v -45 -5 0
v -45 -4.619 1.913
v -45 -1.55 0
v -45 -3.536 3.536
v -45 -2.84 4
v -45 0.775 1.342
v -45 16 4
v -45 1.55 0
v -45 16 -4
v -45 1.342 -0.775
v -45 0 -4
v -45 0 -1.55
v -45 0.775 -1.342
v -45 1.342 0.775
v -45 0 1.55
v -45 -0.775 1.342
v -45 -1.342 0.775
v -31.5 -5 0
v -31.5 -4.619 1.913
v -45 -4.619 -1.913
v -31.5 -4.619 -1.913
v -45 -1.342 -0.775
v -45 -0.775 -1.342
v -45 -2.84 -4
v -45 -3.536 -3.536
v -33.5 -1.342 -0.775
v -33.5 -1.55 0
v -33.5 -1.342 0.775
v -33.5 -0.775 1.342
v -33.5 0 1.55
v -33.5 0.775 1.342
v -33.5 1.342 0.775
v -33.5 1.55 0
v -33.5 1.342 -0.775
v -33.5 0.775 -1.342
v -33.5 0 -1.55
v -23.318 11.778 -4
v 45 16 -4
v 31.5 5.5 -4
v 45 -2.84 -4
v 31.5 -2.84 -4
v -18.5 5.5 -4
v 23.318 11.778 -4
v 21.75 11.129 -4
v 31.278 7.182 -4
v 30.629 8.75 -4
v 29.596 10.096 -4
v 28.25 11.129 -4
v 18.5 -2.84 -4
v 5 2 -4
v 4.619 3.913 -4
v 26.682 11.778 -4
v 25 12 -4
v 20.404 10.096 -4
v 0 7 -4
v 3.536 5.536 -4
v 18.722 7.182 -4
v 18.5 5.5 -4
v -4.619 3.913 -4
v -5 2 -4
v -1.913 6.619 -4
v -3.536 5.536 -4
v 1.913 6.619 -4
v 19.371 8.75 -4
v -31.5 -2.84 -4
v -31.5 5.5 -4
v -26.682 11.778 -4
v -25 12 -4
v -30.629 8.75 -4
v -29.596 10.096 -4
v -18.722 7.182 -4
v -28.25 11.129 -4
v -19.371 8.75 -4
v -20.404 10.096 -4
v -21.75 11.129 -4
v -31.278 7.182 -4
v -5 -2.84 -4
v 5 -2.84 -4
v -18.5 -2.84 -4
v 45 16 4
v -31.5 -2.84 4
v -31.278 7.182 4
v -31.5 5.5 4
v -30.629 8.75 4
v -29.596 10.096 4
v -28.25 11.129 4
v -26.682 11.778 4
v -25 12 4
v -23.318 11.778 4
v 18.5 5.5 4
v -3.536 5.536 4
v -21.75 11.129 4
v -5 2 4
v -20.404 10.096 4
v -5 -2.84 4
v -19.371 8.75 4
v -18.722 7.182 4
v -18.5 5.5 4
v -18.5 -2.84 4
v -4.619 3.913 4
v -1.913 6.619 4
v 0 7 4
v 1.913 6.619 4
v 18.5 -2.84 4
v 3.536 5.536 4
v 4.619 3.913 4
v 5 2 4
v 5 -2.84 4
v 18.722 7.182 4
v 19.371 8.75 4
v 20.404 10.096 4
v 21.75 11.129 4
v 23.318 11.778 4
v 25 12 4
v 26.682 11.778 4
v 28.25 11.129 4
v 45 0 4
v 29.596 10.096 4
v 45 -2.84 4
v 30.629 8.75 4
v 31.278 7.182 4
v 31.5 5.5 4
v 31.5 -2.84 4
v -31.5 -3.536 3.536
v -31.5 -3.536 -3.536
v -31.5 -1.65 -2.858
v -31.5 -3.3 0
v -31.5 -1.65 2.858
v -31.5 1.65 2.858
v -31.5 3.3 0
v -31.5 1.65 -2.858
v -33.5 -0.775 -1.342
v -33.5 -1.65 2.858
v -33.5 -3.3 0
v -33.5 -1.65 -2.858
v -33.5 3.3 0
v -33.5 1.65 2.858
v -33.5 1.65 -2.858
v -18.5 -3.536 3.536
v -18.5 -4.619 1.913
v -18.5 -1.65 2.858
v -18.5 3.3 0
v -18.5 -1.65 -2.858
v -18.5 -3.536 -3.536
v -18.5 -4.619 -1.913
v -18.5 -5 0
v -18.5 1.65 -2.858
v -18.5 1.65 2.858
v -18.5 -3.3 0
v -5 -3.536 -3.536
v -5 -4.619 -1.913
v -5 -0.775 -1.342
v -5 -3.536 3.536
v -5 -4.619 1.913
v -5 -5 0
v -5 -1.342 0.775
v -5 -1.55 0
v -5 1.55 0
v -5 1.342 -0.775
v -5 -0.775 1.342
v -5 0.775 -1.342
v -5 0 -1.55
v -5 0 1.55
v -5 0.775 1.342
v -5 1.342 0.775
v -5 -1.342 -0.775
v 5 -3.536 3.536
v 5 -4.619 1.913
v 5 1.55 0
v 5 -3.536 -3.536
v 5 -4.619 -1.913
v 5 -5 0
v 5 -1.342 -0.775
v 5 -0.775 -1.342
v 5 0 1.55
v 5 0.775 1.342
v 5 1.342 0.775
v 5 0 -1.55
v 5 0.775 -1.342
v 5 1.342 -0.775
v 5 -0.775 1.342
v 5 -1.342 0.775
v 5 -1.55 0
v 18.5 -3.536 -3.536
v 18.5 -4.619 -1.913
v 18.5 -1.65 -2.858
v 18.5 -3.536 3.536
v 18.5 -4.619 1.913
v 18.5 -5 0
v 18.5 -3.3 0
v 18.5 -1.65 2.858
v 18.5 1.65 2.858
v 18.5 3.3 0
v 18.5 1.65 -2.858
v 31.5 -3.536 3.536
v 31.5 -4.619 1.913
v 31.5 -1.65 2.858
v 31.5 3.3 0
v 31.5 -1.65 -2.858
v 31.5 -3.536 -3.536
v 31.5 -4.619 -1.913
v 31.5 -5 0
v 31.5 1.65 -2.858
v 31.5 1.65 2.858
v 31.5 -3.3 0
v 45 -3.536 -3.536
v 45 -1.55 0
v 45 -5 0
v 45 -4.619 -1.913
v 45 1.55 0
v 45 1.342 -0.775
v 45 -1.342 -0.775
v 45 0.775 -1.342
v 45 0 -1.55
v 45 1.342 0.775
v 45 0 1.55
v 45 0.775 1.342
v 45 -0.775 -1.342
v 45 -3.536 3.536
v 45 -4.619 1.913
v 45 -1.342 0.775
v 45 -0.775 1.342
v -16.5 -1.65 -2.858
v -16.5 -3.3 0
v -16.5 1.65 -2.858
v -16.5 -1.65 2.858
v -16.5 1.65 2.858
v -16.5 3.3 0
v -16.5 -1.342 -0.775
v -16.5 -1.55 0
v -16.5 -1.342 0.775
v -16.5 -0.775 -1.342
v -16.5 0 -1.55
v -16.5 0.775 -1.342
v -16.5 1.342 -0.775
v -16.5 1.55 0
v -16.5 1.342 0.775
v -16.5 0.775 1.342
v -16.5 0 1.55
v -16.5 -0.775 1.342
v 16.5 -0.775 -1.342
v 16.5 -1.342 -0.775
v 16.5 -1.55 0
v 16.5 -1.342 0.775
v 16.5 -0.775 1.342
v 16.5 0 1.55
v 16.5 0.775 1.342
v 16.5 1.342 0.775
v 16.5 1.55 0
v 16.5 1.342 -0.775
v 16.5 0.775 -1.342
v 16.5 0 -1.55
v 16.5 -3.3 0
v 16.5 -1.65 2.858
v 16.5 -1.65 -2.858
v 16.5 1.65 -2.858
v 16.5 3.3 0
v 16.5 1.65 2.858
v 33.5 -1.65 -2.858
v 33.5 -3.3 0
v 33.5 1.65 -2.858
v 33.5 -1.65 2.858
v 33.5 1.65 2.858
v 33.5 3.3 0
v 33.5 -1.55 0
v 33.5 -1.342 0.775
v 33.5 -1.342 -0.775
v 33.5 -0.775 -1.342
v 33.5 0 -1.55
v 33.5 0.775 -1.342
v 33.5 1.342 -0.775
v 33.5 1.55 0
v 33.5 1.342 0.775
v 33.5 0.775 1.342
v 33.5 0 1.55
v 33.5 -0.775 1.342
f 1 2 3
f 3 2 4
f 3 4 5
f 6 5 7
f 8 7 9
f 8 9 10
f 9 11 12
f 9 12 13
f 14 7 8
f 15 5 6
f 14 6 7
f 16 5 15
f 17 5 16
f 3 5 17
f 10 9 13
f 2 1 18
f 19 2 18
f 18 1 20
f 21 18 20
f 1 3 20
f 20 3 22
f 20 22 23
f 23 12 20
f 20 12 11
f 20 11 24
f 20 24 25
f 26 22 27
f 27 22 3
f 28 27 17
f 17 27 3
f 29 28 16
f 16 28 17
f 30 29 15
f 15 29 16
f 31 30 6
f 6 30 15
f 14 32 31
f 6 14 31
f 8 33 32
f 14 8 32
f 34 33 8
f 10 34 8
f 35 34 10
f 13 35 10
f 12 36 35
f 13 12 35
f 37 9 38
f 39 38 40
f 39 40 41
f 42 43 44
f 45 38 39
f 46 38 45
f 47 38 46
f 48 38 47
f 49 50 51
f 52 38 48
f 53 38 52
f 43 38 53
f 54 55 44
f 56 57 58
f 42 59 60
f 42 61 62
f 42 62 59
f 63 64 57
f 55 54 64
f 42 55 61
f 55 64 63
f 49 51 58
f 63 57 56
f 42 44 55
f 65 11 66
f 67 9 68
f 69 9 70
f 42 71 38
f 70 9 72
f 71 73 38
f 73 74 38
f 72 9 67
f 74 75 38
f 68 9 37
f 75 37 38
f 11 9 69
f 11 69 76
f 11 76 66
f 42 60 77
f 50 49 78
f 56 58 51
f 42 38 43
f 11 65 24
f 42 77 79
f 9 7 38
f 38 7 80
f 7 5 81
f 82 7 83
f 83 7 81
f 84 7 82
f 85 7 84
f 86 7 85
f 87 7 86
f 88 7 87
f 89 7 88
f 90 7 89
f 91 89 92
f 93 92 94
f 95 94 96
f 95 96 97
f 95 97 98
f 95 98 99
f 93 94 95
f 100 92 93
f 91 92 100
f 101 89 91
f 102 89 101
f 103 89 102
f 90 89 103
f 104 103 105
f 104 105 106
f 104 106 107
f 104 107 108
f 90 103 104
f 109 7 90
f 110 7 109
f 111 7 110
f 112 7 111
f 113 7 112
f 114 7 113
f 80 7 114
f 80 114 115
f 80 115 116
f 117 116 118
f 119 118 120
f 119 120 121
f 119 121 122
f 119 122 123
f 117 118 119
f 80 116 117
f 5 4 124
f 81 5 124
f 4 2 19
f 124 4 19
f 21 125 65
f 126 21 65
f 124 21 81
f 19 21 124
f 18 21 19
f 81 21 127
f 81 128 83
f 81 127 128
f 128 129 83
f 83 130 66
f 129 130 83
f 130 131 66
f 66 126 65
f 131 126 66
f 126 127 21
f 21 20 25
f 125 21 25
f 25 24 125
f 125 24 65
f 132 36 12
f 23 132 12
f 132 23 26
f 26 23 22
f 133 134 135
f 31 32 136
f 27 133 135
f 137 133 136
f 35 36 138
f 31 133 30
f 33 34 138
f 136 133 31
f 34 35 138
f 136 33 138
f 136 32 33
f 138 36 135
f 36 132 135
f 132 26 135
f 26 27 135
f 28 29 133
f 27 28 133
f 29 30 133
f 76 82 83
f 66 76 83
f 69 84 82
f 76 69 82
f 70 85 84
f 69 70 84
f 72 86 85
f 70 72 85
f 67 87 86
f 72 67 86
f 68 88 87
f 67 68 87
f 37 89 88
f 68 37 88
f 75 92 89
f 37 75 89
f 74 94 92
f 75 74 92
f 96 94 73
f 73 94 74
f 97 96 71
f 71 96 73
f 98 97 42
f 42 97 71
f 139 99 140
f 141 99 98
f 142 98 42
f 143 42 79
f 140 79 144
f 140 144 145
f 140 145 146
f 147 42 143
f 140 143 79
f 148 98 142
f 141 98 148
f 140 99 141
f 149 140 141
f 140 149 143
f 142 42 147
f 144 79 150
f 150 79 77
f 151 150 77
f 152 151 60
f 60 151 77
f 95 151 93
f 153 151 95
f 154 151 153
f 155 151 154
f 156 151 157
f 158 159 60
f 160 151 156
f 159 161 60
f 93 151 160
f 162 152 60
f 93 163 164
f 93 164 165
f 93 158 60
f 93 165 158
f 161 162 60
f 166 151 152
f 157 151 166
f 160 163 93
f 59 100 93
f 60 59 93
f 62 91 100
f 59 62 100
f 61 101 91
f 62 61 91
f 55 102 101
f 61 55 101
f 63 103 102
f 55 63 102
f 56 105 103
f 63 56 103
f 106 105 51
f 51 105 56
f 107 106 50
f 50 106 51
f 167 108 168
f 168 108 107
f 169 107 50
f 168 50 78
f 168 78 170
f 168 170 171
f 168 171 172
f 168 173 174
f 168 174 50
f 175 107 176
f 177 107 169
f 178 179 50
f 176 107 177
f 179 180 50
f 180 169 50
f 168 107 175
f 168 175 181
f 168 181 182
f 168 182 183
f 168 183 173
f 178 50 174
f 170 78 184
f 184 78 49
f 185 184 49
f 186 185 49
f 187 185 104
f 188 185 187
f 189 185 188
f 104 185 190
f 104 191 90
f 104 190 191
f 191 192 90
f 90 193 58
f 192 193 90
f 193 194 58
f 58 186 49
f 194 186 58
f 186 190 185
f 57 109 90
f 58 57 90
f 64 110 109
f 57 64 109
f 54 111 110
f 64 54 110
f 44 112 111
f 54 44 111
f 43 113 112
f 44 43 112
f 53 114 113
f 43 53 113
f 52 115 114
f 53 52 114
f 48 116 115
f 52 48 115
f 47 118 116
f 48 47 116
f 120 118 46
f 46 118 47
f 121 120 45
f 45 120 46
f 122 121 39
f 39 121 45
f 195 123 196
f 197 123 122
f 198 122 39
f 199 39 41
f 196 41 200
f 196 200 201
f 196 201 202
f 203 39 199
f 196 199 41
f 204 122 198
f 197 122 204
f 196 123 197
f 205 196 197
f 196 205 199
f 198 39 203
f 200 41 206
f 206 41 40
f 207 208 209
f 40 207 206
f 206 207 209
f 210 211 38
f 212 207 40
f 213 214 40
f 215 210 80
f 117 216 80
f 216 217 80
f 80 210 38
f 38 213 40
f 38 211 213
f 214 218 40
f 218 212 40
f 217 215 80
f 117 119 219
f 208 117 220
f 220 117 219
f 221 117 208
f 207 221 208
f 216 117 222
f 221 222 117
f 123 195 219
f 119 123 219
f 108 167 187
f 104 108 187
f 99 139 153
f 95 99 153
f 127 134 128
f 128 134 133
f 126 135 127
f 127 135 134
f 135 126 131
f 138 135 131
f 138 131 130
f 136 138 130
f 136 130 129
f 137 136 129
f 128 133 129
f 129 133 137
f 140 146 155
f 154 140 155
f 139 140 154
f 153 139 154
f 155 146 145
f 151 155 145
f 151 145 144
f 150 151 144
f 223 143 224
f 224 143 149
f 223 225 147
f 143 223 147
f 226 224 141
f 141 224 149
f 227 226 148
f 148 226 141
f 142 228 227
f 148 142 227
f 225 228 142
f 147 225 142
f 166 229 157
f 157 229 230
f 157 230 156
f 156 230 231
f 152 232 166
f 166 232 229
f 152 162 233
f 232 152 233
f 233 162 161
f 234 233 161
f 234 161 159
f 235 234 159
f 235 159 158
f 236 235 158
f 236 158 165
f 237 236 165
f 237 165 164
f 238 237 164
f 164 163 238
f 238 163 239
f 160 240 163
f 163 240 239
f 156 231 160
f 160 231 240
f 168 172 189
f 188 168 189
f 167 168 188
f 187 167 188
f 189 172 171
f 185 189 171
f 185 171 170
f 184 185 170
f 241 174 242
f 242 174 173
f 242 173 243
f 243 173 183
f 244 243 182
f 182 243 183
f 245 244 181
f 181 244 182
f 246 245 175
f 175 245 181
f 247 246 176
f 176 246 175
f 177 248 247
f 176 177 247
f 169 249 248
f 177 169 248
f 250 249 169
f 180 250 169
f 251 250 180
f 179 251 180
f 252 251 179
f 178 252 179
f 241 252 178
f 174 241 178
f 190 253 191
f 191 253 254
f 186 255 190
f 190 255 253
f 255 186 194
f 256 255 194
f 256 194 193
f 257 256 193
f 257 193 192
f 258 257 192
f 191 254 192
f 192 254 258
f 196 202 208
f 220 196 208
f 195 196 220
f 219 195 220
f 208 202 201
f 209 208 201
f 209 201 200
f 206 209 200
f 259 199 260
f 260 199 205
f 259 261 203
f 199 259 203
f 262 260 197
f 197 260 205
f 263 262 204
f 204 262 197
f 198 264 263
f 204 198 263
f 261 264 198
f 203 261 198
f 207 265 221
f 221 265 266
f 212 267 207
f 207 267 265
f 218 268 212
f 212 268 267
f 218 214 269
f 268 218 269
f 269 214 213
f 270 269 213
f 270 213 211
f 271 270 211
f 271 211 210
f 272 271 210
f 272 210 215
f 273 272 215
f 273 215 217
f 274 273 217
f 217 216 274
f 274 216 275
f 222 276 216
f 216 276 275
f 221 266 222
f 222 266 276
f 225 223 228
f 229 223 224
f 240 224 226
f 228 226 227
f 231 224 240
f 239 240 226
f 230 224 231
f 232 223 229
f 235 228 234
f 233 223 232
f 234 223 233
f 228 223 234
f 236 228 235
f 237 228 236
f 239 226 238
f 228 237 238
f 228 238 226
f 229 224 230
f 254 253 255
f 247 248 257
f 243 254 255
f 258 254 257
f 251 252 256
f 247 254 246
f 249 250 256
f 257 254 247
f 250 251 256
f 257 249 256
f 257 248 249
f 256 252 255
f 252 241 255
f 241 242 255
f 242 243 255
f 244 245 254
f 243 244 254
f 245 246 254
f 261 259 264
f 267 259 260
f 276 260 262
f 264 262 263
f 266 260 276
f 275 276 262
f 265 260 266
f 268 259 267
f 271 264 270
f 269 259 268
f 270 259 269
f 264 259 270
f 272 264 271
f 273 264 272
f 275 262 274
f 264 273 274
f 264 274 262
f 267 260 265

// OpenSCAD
parallel_joints(90, 13, 25, 0);

module parallel_joints(width, cutout, offset, reinforced, bridge) {
  middle = 2*offset - width/2;
  difference() {
    union() {
      intersection() {
        cube([width, 20, 8], center=true);
        rotate([0, 90, 0]) cylinder(r=5, h=width, center=true);
      }
      intersection() {
        translate([0, 18, 4]) rotate([45, 0, 0])
          cube([width, reinforced, reinforced], center=true);
        if (bridge) 
          translate([0, 0, 20]) cube([width, 35, 40], center=true);
      }
      translate([0, 8, 0]) cube([width, 16, 8], center=true);
    }
    rotate([0, 90, 0]) cylinder(r=1.55, h=width + 1, center=true, $fn=12);

    for (x = [-offset, offset]) {
      translate([x, 5.5, 0])
        cylinder(r=cutout/2, h=100, center=true, $fn=24);
      translate([x, -4.5, 0])
        cube([cutout, 20, 100], center=true);
      translate([x, 0, 0]) rotate([0, 90, 0]) rotate([0, 0, 30])
        cylinder(r=3.3, h=17, center=true, $fn=6);
    }
    translate([0, 2, 0]) cylinder(r=middle, h=100, center=true);
    translate([0, -8, 0]) cube([2*middle, 20, 100], center=true);
  }
}
